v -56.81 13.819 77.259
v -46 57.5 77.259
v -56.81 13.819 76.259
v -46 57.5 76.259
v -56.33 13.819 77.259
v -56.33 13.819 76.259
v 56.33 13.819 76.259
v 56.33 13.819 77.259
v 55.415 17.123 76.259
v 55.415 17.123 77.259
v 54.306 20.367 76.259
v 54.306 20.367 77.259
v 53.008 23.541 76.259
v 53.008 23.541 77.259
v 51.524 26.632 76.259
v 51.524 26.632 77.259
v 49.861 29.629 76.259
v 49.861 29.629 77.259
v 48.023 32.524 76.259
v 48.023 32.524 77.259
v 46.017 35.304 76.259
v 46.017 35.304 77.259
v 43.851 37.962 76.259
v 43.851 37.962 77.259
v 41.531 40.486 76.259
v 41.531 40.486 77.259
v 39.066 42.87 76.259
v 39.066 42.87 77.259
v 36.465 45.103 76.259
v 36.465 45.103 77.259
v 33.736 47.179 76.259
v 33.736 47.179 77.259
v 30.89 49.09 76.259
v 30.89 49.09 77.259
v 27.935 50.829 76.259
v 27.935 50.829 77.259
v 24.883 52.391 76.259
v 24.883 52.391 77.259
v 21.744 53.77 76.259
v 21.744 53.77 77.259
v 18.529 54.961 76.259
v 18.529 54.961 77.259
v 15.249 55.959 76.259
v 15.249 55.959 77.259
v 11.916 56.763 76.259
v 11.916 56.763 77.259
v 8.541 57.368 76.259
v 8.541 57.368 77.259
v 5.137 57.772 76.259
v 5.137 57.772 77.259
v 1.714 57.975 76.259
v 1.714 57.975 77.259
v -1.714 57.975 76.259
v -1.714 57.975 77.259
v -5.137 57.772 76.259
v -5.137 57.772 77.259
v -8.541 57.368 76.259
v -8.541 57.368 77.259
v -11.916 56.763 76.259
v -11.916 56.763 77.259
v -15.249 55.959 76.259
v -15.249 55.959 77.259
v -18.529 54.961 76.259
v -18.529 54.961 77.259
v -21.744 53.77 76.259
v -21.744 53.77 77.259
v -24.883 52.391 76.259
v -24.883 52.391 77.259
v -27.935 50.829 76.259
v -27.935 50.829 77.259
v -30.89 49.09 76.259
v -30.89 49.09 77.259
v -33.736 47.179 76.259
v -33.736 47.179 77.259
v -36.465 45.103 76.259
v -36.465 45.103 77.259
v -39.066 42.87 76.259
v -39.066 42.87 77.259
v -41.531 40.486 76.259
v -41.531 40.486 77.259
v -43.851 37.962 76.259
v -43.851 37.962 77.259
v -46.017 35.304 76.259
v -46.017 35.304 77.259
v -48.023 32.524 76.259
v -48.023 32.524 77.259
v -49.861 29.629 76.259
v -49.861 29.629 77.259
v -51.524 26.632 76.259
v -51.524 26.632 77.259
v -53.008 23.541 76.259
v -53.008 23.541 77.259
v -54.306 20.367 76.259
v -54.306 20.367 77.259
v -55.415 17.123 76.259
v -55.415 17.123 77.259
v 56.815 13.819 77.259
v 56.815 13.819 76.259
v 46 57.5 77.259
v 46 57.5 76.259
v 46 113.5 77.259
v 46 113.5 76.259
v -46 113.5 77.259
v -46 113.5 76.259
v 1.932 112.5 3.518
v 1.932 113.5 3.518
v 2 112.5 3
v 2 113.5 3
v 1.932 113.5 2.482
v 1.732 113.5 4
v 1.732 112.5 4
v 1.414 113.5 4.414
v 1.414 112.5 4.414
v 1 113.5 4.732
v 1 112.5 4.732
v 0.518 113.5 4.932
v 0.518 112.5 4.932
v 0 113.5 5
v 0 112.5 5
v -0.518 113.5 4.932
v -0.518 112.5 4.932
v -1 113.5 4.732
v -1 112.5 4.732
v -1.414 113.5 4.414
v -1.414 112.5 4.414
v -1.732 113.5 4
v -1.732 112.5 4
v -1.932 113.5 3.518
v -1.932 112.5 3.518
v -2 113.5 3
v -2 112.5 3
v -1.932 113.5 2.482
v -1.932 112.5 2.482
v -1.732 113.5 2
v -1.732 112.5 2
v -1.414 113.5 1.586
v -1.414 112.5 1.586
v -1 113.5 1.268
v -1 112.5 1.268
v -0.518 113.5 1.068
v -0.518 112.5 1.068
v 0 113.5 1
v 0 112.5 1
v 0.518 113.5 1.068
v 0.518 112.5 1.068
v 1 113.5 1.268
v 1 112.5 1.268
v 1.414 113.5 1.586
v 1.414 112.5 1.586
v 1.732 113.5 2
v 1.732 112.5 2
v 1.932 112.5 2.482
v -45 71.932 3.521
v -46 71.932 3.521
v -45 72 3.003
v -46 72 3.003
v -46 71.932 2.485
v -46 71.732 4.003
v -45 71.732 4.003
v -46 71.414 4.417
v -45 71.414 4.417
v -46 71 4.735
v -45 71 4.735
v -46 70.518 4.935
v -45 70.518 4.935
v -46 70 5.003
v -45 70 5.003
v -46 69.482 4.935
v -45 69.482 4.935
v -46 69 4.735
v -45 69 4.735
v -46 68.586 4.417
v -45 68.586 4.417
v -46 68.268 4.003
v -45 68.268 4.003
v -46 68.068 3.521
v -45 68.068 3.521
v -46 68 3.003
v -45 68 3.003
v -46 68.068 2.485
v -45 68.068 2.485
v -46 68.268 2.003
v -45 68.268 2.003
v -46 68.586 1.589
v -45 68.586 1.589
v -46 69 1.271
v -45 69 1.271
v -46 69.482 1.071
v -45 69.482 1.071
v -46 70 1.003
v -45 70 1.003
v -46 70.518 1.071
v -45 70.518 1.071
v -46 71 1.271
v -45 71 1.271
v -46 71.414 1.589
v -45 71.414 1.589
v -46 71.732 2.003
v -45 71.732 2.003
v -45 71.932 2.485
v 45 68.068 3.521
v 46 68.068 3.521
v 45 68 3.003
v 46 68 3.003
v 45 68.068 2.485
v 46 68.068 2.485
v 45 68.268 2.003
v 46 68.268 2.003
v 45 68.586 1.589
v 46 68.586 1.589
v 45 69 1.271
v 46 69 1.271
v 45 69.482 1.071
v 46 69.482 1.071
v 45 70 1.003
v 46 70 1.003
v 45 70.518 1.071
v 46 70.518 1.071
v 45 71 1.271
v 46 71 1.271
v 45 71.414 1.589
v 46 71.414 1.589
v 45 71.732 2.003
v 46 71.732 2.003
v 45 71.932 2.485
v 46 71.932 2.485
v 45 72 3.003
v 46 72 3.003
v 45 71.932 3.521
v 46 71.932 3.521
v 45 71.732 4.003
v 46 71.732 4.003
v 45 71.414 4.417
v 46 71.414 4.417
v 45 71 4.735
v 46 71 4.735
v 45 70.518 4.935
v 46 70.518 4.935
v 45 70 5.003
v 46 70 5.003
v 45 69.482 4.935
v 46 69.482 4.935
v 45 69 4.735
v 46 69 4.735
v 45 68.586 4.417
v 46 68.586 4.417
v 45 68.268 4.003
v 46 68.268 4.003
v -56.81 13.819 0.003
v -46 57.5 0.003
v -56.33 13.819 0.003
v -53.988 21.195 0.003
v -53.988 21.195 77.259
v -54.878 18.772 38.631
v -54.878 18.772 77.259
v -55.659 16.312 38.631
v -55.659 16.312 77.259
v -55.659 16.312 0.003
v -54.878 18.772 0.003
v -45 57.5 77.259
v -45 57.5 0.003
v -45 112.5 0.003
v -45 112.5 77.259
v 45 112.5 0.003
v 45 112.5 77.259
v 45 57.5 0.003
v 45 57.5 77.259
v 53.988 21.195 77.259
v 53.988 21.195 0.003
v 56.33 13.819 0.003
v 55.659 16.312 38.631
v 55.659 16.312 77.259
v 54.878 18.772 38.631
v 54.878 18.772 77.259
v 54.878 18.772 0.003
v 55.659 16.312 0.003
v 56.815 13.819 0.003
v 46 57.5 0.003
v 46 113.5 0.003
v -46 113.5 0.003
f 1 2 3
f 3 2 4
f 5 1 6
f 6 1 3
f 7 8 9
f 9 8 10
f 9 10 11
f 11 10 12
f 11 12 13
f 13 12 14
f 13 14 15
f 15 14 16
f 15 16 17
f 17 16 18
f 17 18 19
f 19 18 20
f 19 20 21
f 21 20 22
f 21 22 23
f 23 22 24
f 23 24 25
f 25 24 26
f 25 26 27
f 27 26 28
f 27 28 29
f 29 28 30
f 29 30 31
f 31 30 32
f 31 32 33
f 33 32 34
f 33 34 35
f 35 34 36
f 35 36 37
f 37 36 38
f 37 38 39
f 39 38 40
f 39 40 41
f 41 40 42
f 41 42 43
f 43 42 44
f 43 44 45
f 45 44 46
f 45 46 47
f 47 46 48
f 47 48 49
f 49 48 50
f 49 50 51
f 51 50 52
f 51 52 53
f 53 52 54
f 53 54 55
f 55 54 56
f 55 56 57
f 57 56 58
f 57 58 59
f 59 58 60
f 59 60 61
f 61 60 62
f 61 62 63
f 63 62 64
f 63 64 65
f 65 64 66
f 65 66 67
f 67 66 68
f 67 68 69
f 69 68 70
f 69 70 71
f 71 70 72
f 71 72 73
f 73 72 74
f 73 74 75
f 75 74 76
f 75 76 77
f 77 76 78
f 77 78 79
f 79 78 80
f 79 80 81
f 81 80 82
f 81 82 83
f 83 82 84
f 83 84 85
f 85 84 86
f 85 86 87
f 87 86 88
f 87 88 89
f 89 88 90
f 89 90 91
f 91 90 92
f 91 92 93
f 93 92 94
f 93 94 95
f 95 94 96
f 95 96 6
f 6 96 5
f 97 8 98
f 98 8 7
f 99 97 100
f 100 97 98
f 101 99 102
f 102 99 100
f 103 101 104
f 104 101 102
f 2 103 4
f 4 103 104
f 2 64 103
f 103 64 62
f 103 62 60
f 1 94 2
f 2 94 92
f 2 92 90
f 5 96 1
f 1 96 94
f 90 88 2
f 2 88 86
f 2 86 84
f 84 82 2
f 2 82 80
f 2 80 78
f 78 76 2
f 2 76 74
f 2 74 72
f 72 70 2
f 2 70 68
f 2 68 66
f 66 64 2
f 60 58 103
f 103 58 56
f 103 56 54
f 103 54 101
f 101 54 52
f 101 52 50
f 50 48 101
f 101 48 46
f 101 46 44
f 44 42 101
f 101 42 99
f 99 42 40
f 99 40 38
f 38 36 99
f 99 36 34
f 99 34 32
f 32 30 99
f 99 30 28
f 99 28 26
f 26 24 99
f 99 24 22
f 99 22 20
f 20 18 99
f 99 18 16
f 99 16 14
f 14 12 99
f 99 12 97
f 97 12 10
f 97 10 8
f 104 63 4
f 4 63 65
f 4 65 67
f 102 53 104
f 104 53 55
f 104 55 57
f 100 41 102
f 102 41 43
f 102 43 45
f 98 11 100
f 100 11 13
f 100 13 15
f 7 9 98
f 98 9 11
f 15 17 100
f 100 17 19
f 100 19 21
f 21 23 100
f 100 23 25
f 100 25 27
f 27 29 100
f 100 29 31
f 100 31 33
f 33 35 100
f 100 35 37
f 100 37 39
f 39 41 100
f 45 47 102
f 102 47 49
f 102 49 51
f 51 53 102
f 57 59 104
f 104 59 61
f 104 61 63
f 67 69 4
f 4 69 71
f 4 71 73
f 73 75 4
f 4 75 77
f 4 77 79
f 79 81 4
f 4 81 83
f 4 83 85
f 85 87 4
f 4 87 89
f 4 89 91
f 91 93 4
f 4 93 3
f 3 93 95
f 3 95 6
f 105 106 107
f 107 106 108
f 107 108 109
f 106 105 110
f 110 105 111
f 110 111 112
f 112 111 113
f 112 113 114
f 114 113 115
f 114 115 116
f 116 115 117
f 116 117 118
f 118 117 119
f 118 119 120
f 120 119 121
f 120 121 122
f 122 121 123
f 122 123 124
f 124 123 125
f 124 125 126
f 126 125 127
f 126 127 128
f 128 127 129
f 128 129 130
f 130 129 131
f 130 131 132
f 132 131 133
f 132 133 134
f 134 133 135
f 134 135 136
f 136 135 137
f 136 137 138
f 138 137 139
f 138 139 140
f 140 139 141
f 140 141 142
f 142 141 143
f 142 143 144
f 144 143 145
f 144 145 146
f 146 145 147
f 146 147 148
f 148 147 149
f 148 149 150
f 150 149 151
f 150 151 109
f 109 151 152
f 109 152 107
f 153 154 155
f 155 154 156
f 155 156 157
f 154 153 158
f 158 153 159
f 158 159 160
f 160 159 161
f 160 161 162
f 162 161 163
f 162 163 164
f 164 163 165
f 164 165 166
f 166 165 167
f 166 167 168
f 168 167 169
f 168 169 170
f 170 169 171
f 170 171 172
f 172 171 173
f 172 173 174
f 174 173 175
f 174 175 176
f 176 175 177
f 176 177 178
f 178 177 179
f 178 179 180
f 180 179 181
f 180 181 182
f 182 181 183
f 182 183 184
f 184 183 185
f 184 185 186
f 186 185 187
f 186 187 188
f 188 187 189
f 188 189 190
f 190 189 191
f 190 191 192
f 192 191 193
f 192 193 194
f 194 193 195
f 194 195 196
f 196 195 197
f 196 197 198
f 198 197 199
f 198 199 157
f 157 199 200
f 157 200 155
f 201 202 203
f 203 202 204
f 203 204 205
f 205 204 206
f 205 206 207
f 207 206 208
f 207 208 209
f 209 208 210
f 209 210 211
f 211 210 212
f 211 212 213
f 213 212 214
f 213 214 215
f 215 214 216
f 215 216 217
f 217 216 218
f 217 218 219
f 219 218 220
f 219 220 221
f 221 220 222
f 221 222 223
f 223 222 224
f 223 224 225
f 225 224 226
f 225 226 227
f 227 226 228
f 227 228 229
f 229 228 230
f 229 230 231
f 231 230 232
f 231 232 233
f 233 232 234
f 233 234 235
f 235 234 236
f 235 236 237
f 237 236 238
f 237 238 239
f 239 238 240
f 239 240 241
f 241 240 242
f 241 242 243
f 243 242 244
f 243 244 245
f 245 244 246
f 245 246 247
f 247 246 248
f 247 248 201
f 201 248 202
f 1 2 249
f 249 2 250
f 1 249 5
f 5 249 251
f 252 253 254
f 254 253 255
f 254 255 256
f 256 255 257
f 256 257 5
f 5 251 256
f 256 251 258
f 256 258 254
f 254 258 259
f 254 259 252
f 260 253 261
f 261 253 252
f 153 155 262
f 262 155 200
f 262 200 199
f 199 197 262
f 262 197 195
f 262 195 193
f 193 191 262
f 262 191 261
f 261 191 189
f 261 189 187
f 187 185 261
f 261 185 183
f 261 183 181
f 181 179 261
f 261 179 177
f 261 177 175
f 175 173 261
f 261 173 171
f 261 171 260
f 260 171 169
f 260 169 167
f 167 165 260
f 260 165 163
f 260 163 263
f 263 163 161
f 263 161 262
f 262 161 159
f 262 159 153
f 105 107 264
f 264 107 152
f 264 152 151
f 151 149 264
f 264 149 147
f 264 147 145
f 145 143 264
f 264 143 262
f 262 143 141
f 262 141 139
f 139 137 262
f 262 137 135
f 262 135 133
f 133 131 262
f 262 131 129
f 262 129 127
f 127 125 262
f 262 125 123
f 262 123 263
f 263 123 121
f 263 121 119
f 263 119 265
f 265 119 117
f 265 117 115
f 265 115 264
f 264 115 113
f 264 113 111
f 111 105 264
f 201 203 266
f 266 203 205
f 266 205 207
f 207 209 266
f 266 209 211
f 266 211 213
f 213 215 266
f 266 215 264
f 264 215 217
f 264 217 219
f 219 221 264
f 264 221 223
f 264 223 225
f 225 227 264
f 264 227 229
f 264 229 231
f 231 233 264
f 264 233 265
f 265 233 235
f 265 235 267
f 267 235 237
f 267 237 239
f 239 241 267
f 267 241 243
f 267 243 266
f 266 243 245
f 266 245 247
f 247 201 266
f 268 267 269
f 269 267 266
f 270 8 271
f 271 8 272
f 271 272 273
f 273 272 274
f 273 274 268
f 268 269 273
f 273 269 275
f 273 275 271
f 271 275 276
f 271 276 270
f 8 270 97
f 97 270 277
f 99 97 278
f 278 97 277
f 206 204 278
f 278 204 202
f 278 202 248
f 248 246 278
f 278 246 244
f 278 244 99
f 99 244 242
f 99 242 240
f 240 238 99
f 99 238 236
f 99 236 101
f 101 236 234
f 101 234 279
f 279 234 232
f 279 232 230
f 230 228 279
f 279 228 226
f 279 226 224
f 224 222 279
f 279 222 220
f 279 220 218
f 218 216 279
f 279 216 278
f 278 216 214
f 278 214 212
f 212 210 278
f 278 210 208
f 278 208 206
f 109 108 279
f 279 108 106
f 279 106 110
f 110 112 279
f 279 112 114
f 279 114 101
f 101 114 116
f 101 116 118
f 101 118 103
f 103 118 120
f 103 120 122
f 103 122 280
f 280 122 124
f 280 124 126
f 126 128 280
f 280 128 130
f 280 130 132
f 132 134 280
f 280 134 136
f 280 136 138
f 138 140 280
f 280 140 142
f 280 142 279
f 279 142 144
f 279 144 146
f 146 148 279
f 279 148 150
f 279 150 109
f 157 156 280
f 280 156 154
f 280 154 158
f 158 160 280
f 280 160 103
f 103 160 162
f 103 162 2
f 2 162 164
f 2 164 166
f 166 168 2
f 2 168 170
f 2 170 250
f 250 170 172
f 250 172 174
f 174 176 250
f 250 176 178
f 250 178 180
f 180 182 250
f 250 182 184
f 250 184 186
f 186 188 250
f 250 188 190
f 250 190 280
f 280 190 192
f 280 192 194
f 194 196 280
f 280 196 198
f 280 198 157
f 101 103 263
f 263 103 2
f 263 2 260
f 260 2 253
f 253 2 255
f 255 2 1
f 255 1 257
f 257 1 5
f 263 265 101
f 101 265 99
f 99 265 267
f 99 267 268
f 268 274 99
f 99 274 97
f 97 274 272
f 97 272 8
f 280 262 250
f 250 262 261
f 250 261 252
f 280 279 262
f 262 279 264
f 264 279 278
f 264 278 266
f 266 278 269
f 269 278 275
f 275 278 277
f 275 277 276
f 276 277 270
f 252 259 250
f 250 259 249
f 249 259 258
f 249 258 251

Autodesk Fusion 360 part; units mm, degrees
sketch "Sketch1" plane through (0, 0, 0) normal (0, 0, 1) x (1, 0, 0)
  line L0 (-45, 112.5) -> (-43, 112.5)
  circle A0 centre (-32.1714, 98.7639) radius 4.5
  circle A1 centre (-33.5876, 33.5876) radius 2.15
  line L1 (-43, 110.5) -> (-43, 59.5)
  line L2 (-43, 59.5) -> (-43, 57.5)
  line L3 (-45, 57.5) -> (-55.8148, 13.8189)
  line L4 (-45, 112.5) -> (-45, 110.5)
  circle A2 centre (33.5876, -33.5876) radius 2.15
  line L5 (-43, 57.5) -> (-50.3698, 27.7333)
  line L6 (0, 0) -> (47.5, 0) construction
  circle A3 centre (33.5876, 33.5876) radius 2.15
  line L7 (2.9, 66.8243) -> (2.9, 70.1757)
  line L8 (18.1, 66.8243) -> (18.1, 70.1757)
  line L9 (0, 71.85) -> (2.9, 70.1757)
  line L10 (-2.9, 68.5) -> (-2.9, 66.8243)
  line L11 (0, 65.15) -> (2.9, 66.8243)
  line L12 (21, 71.85) -> (23.9, 70.1757)
  line L13 (2.9, 65.15) -> (3.3486, 65.15) construction
  line L14 (0, 68.5) -> (2.9, 68.5)
  circle A4 centre (0, 68.5) radius 2
  line L15 (2.9, 68.5) -> (-2.9, 68.5)
  line L16 (0, 68.5) -> (10.5, 68.5)
  line L17 (43, 57.5) -> (50.3698, 27.7333)
  line L18 (23.9, 68.5) -> (23.9, 66.8243)
  line L19 (45, 57.5) -> (45, 112.5)
  line L20 (0, 112.5) -> (45, 112.5)
  line L21 (-2.9, 66.8243) -> (-2.9, 70.1757)
  line L22 (0, 68.5) -> (21, 68.5)
  line L23 (45, 112.5) -> (-45, 112.5)
  line L24 (45, 57.5) -> (55.8148, 13.8189)
  line L25 (0, 57.5) -> (0, 64.5)
  line L26 (0, 71.85) -> (3.3486, 71.85) construction
  line L27 (0, 65.15) -> (3.3486, 65.15) construction
  line L28 (0, 68.5) -> (0, 65.15)
  line L29 (43, 59.5) -> (43, 57.5)
  line L30 (43, 59.5) -> (43, 110.5)
  line L31 (23.9, 66.8243) -> (23.9, 70.1757)
  line L32 (21, 65.15) -> (23.9, 66.8243)
  line L33 (10.5, 68.5) -> (10.5, 67) construction
  line L34 (0, 65.15) -> (0, 71.4)
  line L35 (0, 65.15) -> (-2.9, 66.8243)
  circle A5 centre (21, 68.5) radius 2
  line L36 (43, 110.5) -> (-43, 110.5)
  arc A6 (0, -38.75) -> (-18.4136, -54.4719) centre (0.0809, -57.4888) ccw
  spline S0 degree 2 poles (-12.8388, -56.0483) (0, -36) (12.5423, -56.1154) knots 0 0 0 4.029531 4.029531 4.029531 weights 1 3.529401 1
  line L37 (-43, 59.5) -> (43, 59.5)
  line L38 (0, 64.5) -> (0, 68.5)
  line L39 (43, 57.5) -> (-43, 57.5)
  line L40 (0, 0) -> (47.5, 0) construction
  line L41 (21, 71.85) -> (18.1, 70.1757)
  circle A7 centre (0, 0) radius 57.5
  line L42 (0, 0) -> (47.5, 0) construction
  line L43 (0, 0) -> (47.5, 0) construction
  line L44 (21, 65.15) -> (18.1, 66.8243)
  line L45 (2.9, 68.5) -> (2.9, 66.8243)
  arc A8 (18.5394, -54.4292) -> (0, -38.75) centre (0.0426, -57.5) ccw
  line L46 (2.9, 71.85) -> (2.9, 72.5)
  line L47 (0, 71.85) -> (-2.9, 70.1757)
  line L48 (-45, 57.5) -> (-45, 112.5)
  circle A9 centre (-33.5876, -33.5876) radius 2.15
  line L49 (-46, 112.5) -> (-46, 57.5)
  line L50 (-46, 57.5) -> (-56.81, 13.8189)
  line L51 (-46, 57.5) -> (-1.0012, 57.5) construction
  line L52 (-56.81, 13.8189) -> (-55.8148, 13.8189)
  line L53 (-46, 112.5) -> (-46, 113.5)
  line L54 (-46, 113.5) -> (46, 113.5)
  line L55 (46, 113.5) -> (46, 57.5)
  line L56 (46, 57.5) -> (56.8148, 13.8189)
  line L57 (56.8148, 13.8189) -> (55.8148, 13.8189)
  dimension "d1" = 115
  dimension "d26" = 4.3
  dimension "d27" = 4.3
  dimension "d28" = 4.3
  dimension "d29" = 4.3
  dimension "d8" = 18.75
  dimension "d63" = 90
  dimension "d64" = 55
  dimension "d65" = 2
  dimension "d66" = 2
  dimension "d67" = 51
  dimension "d68" = 86
  dimension "d69" = 2
  dimension "d76" = 7
  dimension "d77" = 4
  dimension "d78" = 21
  dimension "d79" = 4
  dimension "d80" = 4
  dimension "d81" = 3.35
  dimension "d82" = 6.7
  dimension "d83" = 2.9
  dimension "d84" = 5.8
  dimension "d85" = 150
  dimension "d86" = 30
  dimension "d87" = 30
  dimension "d88" = 60
  dimension "d89" = 10.5
  dimension "d33" = 103.9
  dimension "d34" = 92
ref_plane "WorkPlane1" through (0, 0, 77.259) normal (0, 0, 1) x (1, 0, 0)
sketch "Sketch2" plane through (0, 0, 77.259) normal (0, 0, 1) x (1, 0, 0)
  circle A0 centre (33.5876, -33.5876) radius 2.15
  line L0 (0, 0) -> (47.5, 0) construction
  circle A1 centre (33.5876, 33.5876) radius 2.15
  circle A2 centre (-33.5876, 33.5876) radius 2.15
  spline S0 degree 2 poles (-12.8388, -56.0483) (0, -36) (12.5423, -56.1154) knots 0 0 0 4.029531 4.029531 4.029531 weights 1 3.529401 1
  line L1 (0, 0) -> (47.5, 0) construction
  line L2 (43, 57.5) -> (-43, 57.5)
  line L3 (21, 71.85) -> (23.9, 70.1757)
  line L4 (-45, 112.5) -> (-43, 112.5)
  line L5 (0, 71.85) -> (3.3486, 71.85) construction
  line L6 (-46, 112.5) -> (-46, 113.5)
  line L7 (21, 71.85) -> (18.1, 70.1757)
  line L8 (0, 65.15) -> (3.3486, 65.15) construction
  line L9 (-43, 110.5) -> (-43, 59.5)
  line L10 (0, 68.5) -> (2.9, 68.5)
  line L11 (0, 68.5) -> (21, 68.5)
  line L12 (10.5, 68.5) -> (10.5, 67) construction
  line L13 (43, 110.5) -> (-43, 110.5)
  line L14 (45, 112.5) -> (-45, 112.5)
  line L15 (2.9, 66.8243) -> (2.9, 70.1757)
  line L16 (-43, 57.5) -> (-50.3698, 27.7333)
  line L17 (0, 112.5) -> (45, 112.5)
  circle A3 centre (0, 68.5) radius 2
  line L18 (-46, 113.5) -> (46, 113.5)
  line L19 (-45, 112.5) -> (-45, 110.5)
  line L20 (2.9, 68.5) -> (2.9, 66.8243)
  line L21 (-43, 59.5) -> (43, 59.5)
  line L22 (0, 65.15) -> (2.9, 66.8243)
  circle A4 centre (-32.1714, 98.7639) radius 4.5
  line L23 (0, 68.5) -> (10.5, 68.5)
  line L24 (2.9, 68.5) -> (-2.9, 68.5)
  line L25 (-43, 59.5) -> (-43, 57.5)
  line L26 (0, 68.5) -> (0, 65.15)
  line L27 (-2.9, 66.8243) -> (-2.9, 70.1757)
  line L28 (21, 65.15) -> (23.9, 66.8243)
  line L29 (2.9, 65.15) -> (3.3486, 65.15) construction
  line L30 (0, 71.85) -> (2.9, 70.1757)
  line L31 (23.9, 66.8243) -> (23.9, 70.1757)
  line L32 (23.9, 68.5) -> (23.9, 66.8243)
  line L33 (0, 65.15) -> (-2.9, 66.8243)
  line L34 (0, 57.5) -> (0, 64.5)
  line L35 (18.1, 66.8243) -> (18.1, 70.1757)
  circle A5 centre (21, 68.5) radius 2
  line L36 (43, 59.5) -> (43, 57.5)
  line L37 (-2.9, 68.5) -> (-2.9, 66.8243)
  line L38 (0, 71.85) -> (-2.9, 70.1757)
  line L39 (46, 57.5) -> (56.8148, 13.8189)
  line L40 (45, 57.5) -> (45, 112.5)
  line L41 (43, 57.5) -> (50.3698, 27.7333)
  line L42 (0, 65.15) -> (0, 71.4)
  line L43 (45, 57.5) -> (55.8148, 13.8189)
  line L44 (-46, 57.5) -> (-1.0012, 57.5) construction
  line L45 (-45, 57.5) -> (-45, 112.5)
  line L46 (-46, 112.5) -> (-46, 57.5)
  line L47 (43, 59.5) -> (43, 110.5)
  line L48 (-45, 57.5) -> (-55.8148, 13.8189)
  line L49 (21, 65.15) -> (18.1, 66.8243)
  line L50 (-46, 57.5) -> (-56.81, 13.8189)
  line L51 (46, 113.5) -> (46, 57.5)
  line L52 (0, 64.5) -> (0, 68.5)
  line L53 (2.9, 71.85) -> (2.9, 72.5)
  circle A6 centre (0, 0) radius 57.5
  line L54 (0, 0) -> (47.5, 0) construction
  circle A7 centre (-33.5876, -33.5876) radius 2.15
  line L55 (56.8148, 13.8189) -> (55.8148, 13.8189)
  line L56 (-56.81, 13.8189) -> (-55.8148, 13.8189)
  line L57 (0, 0) -> (47.5, 0) construction
  arc A8 (0, -38.75) -> (-18.4136, -54.4719) centre (0.0809, -57.4888) ccw
  arc A9 (18.5394, -54.4292) -> (0, -38.75) centre (0.0426, -57.5) ccw
  circle A10 centre (0, 0) radius 58
  dimension "d36" = 115
  dimension "d37" = 4.3
  dimension "d38" = 4.3
  dimension "d39" = 4.3
  dimension "d40" = 4.3
  dimension "d41" = 18.75
  dimension "d42" = 90
  dimension "d43" = 55
  dimension "d44" = 2
  dimension "d45" = 2
  dimension "d46" = 51
  dimension "d47" = 86
  dimension "d48" = 2
  dimension "d49" = 7
  dimension "d50" = 4
  dimension "d51" = 21
  dimension "d52" = 4
  dimension "d53" = 4
  dimension "d54" = 3.35
  dimension "d55" = 6.7
  dimension "d56" = 2.9
  dimension "d57" = 5.8
  dimension "d58" = 150
  dimension "d59" = 30
  dimension "d60" = 30
  dimension "d61" = 60
  dimension "d62" = 10.5
  dimension "d70" = 103.9
  dimension "d71" = 92
  dimension "d72" = 116
extrude "Extrude2" add sketch "Sketch2" against normal blind 1 contours L4 L6 L14 L17 L18 L19 L39 L40 L43 L45 L46 L48 L50 L51 L55 L56 A10 | L4 L9 L13 L14 L16 L17 L19 L25 L36 L40 L41 L43 L45 L47 L48 A10 | L2 L16 A10 | L2 L21 L25 L34 A10 | L2 L21 L34 L36 A10 | L2 L41 A10 | A5 | L3 L7 L28 L31 L32 L35 L49 | A3 L24 L26 L27 L33 L37 L42 L52 | L10 L11 L15 A3 L20 L22 L23 L24 L26 L42 L52 | L9 L13 L21 L47 | L10 L11 A3 L23 L24 L26 L42 L52 | A3 L24 L26 L42 L52 | L10 L11 L15 A3 L23 L24 L27 L30 L38 | A3 L24 L42 | L10 L11 A3 L23 L24 L42 | A4 makes body 1
extrude "Extrude1" add sketch "Sketch2" against normal blind 77.256 separate body contours L4 L6 L14 L17 L18 L19 L39 L40 L43 L45 L46 L48 L50 L51 L55 L56 A10 makes body 2
sketch "Sketch3" plane through (46, 0, 0) normal (1, 0, 0) x (0, 1, 0)
  line L0 (113.5, 77.259) -> (57.5, 77.259)
  line L1 (57.5, 77.259) -> (57.5, 0.003)
  line L2 (57.5, 0.003) -> (113.5, 0.003)
  line L3 (113.5, 0.003) -> (113.5, 77.259)
  line L4 (57.5, 0.003) -> (70, 0.003)
  line L5 (70, 0.003) -> (70, 3.003)
  circle A0 centre (70, 3.003) radius 2
  dimension "d91" = 12.5
  dimension "d92" = 3
  dimension "d93" = 4
extrude "Extrude3" cut sketch "Sketch3" against normal blind 14 contours A0 bodies 2
sketch "Sketch4" plane through (-46, 0, 0) normal (-1, 0, 0) x (0, -1, 0)
  line L0 (-57.5, 77.259) -> (-113.5, 77.259)
  line L1 (-113.5, 77.259) -> (-113.5, 0.003)
  line L2 (-113.5, 0.003) -> (-57.5, 0.003)
  line L3 (-57.5, 0.003) -> (-57.5, 77.259)
  line L4 (-57.5, 0.003) -> (-70, 0.003)
  line L5 (-70, 0.003) -> (-70, 3.003)
  circle A0 centre (-70, 3.003) radius 2
  dimension "d96" = 12.5
  dimension "d97" = 3
  dimension "d98" = 4
extrude "Extrude4" cut sketch "Sketch4" against normal blind 1 contours A0 bodies 2
sketch "Sketch5" plane through (0, 113.5, 0) normal (0, 1, 0) x (-1, 0, 0)
  line L0 (46, 77.259) -> (-46, 77.259)
  line L1 (-46, 77.259) -> (-46, 0.003)
  line L2 (-46, 0.003) -> (46, 0.003)
  line L3 (46, 0.003) -> (46, 77.259)
  line L4 (0, 0) -> (0, 3)
  circle A0 centre (0, 3) radius 2
  dimension "d101" = 3
  dimension "d102" = 4
extrude "Extrude5" cut sketch "Sketch5" against normal blind 1 contours A0 bodies 2
equation "d8 = 17.250 mm + 1.5 mm"
equation "d67 = 53 mm - 2 mm"
equation "d68 = 88 mm - 2 mm"
equation "d81 = ( 6.7 / 2 ) * 1 mm"
equation "d83 = ( 5.8 / 2 ) * 1 mm"
equation "d89 = ( 21 / 2 ) * 1 mm"
equation "d33 = 90 deg + 13.9 deg"
equation "d35 = 71.259 mm + 6 mm"
equation "d41 = 17.250 mm + 1.5 mm"
equation "d46 = 53 mm - 2 mm"
equation "d47 = 88 mm - 2 mm"
equation "d54 = ( 6.7 / 2 ) * 1 mm"
equation "d56 = ( 5.8 / 2 ) * 1 mm"
equation "d62 = ( 21 / 2 ) * 1 mm"
equation "d70 = 90 deg + 13.9 deg"
equation "d73 = -71.256 mm + -6 mm"
